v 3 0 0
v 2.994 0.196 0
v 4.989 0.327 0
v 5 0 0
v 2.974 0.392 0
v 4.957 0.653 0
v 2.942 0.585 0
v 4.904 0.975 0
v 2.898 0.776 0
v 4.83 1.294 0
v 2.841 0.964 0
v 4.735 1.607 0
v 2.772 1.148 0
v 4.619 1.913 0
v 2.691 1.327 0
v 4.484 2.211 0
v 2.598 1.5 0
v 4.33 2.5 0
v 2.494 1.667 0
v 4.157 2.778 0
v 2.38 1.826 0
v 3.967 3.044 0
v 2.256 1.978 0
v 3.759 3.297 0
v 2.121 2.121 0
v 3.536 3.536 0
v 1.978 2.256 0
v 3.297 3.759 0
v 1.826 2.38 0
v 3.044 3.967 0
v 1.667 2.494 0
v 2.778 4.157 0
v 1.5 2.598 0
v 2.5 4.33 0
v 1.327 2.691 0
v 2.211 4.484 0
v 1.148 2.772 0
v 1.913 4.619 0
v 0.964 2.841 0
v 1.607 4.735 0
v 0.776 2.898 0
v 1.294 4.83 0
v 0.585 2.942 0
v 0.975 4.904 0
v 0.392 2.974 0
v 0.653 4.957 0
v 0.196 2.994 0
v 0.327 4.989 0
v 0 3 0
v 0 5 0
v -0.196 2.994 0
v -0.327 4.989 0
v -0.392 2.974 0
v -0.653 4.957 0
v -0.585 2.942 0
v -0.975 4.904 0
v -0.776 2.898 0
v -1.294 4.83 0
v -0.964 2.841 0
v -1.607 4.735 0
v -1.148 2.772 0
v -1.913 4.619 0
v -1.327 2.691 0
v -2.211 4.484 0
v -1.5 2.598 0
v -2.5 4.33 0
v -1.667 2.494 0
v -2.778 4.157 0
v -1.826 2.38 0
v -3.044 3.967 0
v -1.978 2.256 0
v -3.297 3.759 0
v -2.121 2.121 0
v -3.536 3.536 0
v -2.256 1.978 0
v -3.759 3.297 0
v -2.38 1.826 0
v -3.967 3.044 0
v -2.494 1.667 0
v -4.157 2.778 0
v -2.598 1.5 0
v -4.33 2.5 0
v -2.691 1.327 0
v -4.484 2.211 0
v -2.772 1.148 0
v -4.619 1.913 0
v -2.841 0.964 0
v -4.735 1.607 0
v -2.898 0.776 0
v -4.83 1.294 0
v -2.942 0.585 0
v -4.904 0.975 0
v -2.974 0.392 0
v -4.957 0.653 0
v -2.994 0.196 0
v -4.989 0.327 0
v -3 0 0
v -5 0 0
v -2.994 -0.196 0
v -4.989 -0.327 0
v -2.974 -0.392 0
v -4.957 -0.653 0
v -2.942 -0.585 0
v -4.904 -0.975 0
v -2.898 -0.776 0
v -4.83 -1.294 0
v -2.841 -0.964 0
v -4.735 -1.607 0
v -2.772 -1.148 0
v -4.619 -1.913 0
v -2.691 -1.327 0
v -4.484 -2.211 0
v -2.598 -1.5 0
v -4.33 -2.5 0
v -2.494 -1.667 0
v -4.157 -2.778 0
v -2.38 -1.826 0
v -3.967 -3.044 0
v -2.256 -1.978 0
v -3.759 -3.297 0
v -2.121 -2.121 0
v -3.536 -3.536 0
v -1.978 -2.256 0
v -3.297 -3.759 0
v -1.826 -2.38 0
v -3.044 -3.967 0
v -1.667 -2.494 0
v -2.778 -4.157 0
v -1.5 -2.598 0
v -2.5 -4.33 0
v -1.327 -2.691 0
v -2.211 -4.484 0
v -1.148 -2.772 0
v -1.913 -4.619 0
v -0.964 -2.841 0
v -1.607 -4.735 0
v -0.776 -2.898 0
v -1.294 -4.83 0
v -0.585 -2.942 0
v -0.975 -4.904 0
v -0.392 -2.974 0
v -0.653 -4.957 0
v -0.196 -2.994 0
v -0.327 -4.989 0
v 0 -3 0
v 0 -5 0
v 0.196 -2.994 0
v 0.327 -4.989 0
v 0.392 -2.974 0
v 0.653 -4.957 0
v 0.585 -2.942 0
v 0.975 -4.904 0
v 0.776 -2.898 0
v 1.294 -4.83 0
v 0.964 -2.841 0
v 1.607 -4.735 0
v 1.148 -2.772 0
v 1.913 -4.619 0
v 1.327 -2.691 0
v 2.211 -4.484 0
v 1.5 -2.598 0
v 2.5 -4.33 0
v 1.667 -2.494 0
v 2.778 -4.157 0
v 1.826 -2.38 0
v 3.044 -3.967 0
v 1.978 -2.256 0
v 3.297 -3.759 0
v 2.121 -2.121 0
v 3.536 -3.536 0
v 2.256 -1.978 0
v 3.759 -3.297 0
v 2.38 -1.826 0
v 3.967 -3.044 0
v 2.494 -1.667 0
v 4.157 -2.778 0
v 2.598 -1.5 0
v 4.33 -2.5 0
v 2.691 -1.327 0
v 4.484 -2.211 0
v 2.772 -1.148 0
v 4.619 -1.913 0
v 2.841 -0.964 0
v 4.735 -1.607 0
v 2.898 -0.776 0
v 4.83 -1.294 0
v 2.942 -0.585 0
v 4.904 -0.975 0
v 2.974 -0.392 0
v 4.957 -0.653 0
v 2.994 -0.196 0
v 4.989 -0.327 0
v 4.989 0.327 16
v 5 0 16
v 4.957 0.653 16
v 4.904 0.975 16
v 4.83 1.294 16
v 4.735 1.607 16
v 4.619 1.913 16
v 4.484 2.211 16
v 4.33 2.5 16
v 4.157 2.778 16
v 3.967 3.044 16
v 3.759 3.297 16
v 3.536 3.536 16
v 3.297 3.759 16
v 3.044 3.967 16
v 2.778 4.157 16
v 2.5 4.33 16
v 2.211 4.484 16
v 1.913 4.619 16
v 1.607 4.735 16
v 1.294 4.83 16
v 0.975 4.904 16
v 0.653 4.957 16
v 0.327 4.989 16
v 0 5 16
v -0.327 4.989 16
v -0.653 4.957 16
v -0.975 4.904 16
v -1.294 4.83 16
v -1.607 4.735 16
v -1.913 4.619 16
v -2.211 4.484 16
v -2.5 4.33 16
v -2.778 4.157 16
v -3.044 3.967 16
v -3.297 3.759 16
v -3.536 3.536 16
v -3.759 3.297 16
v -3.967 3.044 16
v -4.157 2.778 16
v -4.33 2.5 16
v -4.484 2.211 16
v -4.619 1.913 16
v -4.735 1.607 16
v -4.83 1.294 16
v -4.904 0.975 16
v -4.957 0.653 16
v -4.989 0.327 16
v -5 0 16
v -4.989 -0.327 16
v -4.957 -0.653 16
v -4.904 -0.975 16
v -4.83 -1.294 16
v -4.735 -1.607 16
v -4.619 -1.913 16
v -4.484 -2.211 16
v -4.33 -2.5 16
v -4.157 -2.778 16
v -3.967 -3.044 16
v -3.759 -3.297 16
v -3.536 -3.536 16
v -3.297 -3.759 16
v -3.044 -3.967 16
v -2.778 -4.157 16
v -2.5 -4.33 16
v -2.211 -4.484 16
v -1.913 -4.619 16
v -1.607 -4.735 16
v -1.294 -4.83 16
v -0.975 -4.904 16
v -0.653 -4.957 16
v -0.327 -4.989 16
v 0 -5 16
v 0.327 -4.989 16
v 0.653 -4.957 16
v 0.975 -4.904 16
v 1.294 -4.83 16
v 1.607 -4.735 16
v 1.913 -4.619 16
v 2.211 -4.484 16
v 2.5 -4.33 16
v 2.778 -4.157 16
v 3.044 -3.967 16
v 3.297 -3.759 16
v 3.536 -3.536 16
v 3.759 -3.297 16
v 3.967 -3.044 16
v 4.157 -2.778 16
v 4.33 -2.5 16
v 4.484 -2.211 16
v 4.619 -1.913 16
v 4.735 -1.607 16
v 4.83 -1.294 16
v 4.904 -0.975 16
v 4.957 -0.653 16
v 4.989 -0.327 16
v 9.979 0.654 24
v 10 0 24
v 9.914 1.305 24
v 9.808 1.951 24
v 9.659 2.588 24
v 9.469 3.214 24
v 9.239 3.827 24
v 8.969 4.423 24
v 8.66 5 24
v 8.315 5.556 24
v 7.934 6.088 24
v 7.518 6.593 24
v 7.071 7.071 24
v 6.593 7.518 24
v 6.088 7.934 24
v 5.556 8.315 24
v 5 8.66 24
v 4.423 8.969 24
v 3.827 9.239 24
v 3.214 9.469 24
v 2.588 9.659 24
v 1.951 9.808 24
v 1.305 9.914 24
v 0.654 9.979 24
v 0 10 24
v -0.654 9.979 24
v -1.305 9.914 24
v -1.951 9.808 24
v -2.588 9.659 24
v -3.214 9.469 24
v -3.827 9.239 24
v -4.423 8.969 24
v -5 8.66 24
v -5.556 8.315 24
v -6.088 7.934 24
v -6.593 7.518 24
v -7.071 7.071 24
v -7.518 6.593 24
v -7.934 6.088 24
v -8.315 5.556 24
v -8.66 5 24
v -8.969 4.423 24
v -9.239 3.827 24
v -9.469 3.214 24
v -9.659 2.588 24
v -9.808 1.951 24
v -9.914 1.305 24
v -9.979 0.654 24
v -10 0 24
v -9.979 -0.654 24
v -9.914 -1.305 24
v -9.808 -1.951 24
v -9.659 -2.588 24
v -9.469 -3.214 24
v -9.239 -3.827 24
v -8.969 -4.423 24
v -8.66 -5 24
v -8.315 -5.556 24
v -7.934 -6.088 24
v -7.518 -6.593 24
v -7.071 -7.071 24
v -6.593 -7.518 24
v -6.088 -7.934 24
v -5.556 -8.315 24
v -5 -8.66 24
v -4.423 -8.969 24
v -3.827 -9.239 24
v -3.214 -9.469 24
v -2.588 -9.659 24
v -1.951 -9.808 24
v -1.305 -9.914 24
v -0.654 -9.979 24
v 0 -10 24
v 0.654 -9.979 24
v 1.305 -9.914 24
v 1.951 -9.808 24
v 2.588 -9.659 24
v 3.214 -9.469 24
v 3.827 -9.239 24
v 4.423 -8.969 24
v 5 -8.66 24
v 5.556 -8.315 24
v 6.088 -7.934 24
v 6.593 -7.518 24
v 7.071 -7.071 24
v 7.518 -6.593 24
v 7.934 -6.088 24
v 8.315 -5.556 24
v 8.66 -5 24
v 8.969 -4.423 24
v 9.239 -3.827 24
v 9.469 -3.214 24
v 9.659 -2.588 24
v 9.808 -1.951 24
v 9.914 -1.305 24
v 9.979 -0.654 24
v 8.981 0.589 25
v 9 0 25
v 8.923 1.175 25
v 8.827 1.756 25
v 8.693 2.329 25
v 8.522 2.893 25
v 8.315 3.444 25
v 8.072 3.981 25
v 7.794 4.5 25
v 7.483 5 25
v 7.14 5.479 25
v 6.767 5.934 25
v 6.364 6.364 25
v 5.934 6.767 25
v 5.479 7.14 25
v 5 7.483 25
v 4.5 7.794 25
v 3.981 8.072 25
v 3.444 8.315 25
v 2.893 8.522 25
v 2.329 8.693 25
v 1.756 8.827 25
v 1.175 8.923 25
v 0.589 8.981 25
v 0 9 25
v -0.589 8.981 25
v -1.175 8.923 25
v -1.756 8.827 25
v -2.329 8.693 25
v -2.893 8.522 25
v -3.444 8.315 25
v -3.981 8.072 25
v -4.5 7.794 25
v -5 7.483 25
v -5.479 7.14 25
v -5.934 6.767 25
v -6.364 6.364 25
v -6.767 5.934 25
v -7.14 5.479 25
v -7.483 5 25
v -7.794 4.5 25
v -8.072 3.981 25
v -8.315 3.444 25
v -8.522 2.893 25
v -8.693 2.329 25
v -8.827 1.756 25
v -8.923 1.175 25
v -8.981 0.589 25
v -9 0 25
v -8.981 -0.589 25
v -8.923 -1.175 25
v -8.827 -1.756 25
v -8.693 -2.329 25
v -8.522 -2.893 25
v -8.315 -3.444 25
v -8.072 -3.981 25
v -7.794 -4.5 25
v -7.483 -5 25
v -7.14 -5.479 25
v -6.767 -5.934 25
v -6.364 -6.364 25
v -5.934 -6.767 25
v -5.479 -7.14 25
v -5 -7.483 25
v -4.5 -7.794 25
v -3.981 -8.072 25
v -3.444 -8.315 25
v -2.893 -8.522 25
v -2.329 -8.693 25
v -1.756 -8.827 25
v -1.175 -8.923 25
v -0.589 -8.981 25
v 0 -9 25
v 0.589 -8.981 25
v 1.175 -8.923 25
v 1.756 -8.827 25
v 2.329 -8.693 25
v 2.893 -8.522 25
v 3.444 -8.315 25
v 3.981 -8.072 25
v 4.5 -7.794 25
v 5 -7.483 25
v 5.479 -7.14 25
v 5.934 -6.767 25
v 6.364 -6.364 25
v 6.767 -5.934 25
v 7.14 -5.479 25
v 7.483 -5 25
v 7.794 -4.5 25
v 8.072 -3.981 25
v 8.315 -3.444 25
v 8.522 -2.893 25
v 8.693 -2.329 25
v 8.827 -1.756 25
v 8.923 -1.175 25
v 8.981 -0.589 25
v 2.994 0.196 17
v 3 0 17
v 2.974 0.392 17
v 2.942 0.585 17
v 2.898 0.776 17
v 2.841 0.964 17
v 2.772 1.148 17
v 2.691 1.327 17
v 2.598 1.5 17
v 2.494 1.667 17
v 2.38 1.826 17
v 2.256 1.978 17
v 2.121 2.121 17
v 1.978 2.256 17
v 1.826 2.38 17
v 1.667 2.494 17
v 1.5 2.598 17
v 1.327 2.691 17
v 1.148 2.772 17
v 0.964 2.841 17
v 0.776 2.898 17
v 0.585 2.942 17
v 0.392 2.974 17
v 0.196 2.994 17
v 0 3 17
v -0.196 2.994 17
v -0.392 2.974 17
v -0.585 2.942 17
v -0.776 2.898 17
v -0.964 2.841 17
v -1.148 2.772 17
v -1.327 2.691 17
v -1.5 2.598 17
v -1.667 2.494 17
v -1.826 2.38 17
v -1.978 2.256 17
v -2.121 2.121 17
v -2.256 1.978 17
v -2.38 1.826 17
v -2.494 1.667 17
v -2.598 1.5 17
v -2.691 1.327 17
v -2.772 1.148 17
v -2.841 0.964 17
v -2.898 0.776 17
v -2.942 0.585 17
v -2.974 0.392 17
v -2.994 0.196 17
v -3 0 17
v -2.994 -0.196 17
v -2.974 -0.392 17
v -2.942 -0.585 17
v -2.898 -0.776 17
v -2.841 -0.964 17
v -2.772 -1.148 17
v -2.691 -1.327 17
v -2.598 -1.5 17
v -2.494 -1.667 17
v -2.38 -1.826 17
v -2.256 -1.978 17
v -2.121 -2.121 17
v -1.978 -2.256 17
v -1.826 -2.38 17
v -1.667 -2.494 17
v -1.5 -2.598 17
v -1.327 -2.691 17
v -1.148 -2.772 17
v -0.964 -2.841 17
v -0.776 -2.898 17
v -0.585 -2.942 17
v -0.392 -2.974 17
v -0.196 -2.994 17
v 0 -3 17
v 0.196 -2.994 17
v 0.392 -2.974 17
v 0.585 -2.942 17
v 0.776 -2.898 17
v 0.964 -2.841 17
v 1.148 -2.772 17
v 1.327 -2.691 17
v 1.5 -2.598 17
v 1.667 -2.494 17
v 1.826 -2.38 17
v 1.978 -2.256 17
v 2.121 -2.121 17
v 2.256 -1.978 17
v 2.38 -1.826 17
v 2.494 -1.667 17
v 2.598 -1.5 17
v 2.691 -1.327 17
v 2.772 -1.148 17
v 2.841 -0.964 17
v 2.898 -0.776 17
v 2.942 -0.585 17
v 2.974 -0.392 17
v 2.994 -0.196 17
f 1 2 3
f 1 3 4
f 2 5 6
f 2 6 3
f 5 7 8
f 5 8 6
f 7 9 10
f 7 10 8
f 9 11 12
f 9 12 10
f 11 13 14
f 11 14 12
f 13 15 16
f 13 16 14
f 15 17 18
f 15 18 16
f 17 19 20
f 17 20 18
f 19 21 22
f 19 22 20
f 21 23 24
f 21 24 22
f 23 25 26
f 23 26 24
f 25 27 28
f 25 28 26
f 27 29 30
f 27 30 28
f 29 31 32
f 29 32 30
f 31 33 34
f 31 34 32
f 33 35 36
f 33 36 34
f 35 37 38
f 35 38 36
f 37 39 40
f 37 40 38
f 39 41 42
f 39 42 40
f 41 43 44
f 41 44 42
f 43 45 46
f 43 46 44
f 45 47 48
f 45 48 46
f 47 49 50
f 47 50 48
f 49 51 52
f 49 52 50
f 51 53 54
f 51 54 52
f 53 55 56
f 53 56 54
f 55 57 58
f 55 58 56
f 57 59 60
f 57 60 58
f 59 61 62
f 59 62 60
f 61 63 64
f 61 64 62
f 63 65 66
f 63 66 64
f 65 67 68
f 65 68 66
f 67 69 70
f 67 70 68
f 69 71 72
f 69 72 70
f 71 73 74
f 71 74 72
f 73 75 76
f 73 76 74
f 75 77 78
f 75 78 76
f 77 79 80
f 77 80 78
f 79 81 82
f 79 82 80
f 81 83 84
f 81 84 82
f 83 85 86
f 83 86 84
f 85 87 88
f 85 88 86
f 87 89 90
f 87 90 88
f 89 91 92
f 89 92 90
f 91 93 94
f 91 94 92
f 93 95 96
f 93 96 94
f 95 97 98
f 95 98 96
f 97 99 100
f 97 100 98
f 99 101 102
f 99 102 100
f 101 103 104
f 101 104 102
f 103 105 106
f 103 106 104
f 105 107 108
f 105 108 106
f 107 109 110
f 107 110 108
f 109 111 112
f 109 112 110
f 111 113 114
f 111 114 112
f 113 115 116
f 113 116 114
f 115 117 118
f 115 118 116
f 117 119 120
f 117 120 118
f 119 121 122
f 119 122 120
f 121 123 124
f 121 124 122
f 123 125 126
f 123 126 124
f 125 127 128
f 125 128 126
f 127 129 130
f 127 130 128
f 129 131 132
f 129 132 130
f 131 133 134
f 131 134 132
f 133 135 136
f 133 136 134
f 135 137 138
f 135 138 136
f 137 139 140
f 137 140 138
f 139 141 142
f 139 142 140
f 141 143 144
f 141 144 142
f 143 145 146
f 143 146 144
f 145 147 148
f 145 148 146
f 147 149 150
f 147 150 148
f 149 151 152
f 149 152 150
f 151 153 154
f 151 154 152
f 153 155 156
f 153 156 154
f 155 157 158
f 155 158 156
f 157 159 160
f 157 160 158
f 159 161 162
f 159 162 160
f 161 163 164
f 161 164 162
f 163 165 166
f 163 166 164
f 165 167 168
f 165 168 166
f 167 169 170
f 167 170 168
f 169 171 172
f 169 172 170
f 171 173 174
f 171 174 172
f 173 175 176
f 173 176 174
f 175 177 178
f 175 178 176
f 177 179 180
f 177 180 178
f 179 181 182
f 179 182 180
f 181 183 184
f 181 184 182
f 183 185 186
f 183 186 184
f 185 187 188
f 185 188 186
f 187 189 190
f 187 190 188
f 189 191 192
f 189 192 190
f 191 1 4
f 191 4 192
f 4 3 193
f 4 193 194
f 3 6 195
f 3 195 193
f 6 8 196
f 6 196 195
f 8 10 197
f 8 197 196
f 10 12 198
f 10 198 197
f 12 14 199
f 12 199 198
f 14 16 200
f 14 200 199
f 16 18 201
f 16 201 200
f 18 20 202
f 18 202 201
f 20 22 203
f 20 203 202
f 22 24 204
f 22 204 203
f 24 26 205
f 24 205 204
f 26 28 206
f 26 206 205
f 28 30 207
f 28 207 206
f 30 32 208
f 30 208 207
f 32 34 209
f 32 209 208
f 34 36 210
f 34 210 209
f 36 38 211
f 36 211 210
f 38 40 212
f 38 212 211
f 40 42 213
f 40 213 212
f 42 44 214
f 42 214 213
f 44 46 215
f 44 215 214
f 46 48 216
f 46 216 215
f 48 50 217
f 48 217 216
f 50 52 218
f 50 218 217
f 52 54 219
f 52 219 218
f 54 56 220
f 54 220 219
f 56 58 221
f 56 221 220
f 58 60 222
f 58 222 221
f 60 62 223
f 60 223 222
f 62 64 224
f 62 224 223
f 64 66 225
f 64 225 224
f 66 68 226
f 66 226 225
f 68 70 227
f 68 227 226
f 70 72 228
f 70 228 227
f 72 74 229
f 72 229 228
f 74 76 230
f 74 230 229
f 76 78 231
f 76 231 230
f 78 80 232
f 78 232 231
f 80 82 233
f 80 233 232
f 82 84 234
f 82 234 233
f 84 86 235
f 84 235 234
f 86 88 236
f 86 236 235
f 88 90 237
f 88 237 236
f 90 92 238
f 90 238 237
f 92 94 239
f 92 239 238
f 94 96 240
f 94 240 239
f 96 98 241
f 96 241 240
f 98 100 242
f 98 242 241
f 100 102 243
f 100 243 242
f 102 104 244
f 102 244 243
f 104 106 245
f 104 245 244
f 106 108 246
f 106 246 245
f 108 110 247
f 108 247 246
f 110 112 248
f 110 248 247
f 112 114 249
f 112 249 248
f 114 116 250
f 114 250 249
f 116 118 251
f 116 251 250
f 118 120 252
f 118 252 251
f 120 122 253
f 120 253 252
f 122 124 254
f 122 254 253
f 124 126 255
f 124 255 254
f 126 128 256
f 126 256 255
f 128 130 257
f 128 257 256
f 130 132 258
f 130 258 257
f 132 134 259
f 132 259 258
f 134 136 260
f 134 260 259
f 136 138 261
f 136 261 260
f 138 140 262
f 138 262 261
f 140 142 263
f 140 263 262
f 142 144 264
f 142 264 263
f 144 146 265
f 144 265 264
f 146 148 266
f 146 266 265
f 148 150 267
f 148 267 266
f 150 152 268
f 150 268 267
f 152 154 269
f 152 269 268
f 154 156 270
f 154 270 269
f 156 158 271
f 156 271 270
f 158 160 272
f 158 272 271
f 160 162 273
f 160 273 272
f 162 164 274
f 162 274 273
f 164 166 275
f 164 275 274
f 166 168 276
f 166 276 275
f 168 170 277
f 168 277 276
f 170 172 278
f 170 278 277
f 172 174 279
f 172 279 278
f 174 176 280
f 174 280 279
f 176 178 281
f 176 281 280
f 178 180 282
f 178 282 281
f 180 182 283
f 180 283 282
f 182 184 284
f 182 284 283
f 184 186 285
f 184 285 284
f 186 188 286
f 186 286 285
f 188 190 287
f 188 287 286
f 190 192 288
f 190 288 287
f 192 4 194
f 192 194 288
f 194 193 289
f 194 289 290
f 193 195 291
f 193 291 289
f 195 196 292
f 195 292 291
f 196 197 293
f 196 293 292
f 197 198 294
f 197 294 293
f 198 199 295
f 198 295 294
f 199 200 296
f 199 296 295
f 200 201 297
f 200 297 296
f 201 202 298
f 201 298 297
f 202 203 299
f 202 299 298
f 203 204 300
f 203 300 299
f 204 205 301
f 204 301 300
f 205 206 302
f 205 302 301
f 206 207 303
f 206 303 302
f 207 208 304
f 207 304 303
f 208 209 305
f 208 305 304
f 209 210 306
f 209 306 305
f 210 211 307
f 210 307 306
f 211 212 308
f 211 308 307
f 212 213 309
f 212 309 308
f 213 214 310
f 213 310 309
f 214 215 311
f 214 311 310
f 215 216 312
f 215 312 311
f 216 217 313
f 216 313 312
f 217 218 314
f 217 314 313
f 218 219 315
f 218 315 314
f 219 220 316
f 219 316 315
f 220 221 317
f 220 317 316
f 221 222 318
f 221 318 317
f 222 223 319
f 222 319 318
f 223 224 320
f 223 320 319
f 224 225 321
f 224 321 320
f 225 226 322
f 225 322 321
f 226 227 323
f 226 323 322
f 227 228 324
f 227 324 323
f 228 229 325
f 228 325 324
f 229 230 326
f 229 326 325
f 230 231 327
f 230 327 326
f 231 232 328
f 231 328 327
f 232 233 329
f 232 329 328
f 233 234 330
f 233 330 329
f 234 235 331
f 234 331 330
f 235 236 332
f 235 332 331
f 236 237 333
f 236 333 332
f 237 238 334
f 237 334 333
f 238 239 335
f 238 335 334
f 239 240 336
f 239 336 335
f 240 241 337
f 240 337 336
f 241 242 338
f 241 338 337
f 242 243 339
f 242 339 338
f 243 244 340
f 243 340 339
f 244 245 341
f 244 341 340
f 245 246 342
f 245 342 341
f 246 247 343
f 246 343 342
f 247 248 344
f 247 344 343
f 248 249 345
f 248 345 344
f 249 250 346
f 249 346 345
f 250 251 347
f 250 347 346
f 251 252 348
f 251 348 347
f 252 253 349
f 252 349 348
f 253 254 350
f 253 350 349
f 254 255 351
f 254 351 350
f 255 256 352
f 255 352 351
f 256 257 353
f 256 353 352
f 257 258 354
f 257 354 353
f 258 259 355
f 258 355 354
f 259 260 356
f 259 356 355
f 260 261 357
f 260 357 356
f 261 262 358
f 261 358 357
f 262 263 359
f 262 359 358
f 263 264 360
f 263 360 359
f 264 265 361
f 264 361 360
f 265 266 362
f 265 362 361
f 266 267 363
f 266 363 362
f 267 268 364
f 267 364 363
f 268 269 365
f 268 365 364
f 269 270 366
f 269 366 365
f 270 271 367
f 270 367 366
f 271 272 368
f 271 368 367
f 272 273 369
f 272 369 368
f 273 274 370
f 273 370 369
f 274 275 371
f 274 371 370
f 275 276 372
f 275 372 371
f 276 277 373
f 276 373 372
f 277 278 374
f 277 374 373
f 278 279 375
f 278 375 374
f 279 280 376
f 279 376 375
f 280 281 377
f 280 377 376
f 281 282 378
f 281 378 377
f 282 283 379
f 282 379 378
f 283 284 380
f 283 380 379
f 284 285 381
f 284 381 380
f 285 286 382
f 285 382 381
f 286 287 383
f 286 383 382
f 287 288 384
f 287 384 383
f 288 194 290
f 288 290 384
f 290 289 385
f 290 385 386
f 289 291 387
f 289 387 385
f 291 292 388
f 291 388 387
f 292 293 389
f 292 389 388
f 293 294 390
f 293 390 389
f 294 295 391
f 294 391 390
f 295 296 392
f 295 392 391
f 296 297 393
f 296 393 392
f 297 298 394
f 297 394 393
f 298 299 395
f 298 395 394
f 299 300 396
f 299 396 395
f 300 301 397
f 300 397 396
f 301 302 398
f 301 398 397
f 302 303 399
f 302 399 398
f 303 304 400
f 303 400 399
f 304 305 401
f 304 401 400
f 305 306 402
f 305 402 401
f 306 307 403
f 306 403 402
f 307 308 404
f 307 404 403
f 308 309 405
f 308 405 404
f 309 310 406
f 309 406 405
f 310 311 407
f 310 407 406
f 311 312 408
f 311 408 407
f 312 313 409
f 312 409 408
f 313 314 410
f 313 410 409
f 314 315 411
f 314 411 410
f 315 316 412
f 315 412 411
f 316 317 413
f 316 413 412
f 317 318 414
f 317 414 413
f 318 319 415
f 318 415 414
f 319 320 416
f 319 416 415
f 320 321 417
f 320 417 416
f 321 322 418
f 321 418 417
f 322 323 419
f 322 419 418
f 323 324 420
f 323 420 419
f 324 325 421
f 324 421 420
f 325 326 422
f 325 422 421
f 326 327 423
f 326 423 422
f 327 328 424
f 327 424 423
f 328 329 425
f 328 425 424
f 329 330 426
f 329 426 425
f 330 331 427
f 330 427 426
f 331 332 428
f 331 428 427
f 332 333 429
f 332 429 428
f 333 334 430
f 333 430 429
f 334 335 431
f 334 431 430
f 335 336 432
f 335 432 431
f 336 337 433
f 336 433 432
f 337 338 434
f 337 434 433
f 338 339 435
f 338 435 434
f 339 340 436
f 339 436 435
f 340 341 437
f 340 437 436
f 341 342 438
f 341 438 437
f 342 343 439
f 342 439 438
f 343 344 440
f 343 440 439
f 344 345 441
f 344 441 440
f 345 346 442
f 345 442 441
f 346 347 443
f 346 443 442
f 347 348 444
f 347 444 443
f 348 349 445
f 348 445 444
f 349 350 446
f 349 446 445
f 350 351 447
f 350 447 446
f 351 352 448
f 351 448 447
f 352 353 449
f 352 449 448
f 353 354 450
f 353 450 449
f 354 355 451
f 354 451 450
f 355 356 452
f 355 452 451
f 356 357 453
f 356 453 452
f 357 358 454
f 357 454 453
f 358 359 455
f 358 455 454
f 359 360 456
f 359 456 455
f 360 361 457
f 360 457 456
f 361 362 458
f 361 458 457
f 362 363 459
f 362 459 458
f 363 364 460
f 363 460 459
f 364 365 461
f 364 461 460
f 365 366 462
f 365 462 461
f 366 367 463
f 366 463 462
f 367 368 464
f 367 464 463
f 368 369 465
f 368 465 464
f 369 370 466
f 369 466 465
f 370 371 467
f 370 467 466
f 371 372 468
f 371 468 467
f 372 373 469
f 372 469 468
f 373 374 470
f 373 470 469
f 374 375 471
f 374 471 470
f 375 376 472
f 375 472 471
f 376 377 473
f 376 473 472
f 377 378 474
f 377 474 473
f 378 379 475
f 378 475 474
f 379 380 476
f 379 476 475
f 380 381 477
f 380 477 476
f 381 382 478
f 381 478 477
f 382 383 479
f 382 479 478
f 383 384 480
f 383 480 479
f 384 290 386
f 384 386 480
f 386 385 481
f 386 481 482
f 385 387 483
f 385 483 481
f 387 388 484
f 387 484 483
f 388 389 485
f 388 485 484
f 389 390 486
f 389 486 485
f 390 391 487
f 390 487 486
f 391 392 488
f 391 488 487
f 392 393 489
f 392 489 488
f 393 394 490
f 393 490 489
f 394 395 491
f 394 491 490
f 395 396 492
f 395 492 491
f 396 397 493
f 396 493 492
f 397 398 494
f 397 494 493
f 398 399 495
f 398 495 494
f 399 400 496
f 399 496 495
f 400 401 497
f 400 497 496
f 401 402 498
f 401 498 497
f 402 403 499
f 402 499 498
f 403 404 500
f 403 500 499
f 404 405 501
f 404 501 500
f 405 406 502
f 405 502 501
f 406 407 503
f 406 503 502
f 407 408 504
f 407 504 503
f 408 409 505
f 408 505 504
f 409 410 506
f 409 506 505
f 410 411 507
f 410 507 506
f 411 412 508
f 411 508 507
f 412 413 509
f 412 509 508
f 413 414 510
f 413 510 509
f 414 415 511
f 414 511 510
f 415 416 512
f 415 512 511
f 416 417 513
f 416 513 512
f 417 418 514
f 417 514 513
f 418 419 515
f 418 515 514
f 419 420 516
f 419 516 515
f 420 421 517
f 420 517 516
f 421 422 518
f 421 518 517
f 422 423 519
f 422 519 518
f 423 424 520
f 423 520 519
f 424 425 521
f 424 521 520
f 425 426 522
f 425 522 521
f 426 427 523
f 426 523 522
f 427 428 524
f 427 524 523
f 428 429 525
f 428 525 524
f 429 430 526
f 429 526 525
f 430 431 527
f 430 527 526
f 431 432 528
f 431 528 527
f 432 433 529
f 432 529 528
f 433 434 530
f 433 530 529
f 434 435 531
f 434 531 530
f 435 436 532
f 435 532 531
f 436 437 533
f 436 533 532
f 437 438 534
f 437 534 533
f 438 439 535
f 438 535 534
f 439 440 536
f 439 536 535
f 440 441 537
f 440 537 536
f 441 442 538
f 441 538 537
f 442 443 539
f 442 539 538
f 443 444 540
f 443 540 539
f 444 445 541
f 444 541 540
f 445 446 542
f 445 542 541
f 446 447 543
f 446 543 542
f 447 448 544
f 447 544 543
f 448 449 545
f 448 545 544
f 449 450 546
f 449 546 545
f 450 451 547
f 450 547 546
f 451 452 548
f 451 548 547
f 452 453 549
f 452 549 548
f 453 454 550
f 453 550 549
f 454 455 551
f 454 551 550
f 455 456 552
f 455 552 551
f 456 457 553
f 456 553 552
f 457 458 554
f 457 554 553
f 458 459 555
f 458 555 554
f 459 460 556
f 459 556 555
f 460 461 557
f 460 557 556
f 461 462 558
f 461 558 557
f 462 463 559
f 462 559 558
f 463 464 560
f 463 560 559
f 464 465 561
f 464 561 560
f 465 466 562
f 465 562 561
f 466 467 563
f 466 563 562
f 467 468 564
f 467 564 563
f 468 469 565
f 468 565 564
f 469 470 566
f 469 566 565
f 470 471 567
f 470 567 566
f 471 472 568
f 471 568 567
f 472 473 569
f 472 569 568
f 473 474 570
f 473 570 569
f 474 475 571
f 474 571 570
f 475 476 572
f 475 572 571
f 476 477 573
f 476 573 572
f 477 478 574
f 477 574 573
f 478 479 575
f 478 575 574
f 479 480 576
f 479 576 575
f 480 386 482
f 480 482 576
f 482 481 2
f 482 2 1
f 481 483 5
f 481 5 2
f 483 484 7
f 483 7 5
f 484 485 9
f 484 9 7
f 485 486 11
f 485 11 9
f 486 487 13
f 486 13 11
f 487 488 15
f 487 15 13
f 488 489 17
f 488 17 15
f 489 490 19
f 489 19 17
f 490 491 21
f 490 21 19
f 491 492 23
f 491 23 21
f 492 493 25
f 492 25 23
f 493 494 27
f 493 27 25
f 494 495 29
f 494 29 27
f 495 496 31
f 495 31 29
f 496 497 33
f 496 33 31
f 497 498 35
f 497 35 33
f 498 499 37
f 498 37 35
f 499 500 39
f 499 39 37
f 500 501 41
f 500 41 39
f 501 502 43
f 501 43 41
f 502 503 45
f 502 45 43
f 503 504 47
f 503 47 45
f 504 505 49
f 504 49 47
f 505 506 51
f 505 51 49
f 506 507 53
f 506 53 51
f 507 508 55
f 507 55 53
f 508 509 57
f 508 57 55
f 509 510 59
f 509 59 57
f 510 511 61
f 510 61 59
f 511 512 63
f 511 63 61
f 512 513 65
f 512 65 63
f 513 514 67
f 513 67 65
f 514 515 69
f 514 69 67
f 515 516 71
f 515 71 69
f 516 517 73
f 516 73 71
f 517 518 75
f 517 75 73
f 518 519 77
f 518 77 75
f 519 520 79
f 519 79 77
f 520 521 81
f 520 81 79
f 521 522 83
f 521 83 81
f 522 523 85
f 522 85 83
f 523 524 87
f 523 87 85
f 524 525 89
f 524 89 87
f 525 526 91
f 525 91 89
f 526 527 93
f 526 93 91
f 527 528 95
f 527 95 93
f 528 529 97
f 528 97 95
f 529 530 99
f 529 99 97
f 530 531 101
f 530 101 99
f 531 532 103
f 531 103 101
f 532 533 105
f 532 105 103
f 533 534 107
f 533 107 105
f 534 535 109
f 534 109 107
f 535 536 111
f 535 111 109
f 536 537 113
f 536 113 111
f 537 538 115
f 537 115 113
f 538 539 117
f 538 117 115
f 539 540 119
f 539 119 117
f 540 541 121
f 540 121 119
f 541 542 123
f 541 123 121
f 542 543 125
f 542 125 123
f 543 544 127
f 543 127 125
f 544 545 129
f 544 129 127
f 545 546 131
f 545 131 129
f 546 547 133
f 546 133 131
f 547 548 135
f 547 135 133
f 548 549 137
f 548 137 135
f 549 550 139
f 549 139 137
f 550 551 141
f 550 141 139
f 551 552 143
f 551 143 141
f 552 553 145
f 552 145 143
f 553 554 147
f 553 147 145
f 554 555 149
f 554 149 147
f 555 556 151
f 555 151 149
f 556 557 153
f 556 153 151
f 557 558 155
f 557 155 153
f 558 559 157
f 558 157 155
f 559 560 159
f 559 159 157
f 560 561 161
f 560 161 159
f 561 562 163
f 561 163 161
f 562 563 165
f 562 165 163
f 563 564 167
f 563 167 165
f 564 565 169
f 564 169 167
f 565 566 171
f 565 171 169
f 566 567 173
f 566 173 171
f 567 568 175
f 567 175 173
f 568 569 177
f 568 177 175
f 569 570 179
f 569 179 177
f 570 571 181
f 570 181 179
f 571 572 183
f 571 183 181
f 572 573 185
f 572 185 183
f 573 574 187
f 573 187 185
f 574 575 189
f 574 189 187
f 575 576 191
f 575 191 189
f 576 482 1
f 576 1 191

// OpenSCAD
// Original MechIntel educational model. CC0-1.0. Units: mm.
// Not a standardized or load-rated component.
$fn=96;
// Section points: [radius, height], mm. Edit to change the profile.
section=[[3, 0], [5, 0], [5, 16], [10, 24], [9, 25], [3, 17]];
rotate_extrude($fn=96) polygon(points=section);
